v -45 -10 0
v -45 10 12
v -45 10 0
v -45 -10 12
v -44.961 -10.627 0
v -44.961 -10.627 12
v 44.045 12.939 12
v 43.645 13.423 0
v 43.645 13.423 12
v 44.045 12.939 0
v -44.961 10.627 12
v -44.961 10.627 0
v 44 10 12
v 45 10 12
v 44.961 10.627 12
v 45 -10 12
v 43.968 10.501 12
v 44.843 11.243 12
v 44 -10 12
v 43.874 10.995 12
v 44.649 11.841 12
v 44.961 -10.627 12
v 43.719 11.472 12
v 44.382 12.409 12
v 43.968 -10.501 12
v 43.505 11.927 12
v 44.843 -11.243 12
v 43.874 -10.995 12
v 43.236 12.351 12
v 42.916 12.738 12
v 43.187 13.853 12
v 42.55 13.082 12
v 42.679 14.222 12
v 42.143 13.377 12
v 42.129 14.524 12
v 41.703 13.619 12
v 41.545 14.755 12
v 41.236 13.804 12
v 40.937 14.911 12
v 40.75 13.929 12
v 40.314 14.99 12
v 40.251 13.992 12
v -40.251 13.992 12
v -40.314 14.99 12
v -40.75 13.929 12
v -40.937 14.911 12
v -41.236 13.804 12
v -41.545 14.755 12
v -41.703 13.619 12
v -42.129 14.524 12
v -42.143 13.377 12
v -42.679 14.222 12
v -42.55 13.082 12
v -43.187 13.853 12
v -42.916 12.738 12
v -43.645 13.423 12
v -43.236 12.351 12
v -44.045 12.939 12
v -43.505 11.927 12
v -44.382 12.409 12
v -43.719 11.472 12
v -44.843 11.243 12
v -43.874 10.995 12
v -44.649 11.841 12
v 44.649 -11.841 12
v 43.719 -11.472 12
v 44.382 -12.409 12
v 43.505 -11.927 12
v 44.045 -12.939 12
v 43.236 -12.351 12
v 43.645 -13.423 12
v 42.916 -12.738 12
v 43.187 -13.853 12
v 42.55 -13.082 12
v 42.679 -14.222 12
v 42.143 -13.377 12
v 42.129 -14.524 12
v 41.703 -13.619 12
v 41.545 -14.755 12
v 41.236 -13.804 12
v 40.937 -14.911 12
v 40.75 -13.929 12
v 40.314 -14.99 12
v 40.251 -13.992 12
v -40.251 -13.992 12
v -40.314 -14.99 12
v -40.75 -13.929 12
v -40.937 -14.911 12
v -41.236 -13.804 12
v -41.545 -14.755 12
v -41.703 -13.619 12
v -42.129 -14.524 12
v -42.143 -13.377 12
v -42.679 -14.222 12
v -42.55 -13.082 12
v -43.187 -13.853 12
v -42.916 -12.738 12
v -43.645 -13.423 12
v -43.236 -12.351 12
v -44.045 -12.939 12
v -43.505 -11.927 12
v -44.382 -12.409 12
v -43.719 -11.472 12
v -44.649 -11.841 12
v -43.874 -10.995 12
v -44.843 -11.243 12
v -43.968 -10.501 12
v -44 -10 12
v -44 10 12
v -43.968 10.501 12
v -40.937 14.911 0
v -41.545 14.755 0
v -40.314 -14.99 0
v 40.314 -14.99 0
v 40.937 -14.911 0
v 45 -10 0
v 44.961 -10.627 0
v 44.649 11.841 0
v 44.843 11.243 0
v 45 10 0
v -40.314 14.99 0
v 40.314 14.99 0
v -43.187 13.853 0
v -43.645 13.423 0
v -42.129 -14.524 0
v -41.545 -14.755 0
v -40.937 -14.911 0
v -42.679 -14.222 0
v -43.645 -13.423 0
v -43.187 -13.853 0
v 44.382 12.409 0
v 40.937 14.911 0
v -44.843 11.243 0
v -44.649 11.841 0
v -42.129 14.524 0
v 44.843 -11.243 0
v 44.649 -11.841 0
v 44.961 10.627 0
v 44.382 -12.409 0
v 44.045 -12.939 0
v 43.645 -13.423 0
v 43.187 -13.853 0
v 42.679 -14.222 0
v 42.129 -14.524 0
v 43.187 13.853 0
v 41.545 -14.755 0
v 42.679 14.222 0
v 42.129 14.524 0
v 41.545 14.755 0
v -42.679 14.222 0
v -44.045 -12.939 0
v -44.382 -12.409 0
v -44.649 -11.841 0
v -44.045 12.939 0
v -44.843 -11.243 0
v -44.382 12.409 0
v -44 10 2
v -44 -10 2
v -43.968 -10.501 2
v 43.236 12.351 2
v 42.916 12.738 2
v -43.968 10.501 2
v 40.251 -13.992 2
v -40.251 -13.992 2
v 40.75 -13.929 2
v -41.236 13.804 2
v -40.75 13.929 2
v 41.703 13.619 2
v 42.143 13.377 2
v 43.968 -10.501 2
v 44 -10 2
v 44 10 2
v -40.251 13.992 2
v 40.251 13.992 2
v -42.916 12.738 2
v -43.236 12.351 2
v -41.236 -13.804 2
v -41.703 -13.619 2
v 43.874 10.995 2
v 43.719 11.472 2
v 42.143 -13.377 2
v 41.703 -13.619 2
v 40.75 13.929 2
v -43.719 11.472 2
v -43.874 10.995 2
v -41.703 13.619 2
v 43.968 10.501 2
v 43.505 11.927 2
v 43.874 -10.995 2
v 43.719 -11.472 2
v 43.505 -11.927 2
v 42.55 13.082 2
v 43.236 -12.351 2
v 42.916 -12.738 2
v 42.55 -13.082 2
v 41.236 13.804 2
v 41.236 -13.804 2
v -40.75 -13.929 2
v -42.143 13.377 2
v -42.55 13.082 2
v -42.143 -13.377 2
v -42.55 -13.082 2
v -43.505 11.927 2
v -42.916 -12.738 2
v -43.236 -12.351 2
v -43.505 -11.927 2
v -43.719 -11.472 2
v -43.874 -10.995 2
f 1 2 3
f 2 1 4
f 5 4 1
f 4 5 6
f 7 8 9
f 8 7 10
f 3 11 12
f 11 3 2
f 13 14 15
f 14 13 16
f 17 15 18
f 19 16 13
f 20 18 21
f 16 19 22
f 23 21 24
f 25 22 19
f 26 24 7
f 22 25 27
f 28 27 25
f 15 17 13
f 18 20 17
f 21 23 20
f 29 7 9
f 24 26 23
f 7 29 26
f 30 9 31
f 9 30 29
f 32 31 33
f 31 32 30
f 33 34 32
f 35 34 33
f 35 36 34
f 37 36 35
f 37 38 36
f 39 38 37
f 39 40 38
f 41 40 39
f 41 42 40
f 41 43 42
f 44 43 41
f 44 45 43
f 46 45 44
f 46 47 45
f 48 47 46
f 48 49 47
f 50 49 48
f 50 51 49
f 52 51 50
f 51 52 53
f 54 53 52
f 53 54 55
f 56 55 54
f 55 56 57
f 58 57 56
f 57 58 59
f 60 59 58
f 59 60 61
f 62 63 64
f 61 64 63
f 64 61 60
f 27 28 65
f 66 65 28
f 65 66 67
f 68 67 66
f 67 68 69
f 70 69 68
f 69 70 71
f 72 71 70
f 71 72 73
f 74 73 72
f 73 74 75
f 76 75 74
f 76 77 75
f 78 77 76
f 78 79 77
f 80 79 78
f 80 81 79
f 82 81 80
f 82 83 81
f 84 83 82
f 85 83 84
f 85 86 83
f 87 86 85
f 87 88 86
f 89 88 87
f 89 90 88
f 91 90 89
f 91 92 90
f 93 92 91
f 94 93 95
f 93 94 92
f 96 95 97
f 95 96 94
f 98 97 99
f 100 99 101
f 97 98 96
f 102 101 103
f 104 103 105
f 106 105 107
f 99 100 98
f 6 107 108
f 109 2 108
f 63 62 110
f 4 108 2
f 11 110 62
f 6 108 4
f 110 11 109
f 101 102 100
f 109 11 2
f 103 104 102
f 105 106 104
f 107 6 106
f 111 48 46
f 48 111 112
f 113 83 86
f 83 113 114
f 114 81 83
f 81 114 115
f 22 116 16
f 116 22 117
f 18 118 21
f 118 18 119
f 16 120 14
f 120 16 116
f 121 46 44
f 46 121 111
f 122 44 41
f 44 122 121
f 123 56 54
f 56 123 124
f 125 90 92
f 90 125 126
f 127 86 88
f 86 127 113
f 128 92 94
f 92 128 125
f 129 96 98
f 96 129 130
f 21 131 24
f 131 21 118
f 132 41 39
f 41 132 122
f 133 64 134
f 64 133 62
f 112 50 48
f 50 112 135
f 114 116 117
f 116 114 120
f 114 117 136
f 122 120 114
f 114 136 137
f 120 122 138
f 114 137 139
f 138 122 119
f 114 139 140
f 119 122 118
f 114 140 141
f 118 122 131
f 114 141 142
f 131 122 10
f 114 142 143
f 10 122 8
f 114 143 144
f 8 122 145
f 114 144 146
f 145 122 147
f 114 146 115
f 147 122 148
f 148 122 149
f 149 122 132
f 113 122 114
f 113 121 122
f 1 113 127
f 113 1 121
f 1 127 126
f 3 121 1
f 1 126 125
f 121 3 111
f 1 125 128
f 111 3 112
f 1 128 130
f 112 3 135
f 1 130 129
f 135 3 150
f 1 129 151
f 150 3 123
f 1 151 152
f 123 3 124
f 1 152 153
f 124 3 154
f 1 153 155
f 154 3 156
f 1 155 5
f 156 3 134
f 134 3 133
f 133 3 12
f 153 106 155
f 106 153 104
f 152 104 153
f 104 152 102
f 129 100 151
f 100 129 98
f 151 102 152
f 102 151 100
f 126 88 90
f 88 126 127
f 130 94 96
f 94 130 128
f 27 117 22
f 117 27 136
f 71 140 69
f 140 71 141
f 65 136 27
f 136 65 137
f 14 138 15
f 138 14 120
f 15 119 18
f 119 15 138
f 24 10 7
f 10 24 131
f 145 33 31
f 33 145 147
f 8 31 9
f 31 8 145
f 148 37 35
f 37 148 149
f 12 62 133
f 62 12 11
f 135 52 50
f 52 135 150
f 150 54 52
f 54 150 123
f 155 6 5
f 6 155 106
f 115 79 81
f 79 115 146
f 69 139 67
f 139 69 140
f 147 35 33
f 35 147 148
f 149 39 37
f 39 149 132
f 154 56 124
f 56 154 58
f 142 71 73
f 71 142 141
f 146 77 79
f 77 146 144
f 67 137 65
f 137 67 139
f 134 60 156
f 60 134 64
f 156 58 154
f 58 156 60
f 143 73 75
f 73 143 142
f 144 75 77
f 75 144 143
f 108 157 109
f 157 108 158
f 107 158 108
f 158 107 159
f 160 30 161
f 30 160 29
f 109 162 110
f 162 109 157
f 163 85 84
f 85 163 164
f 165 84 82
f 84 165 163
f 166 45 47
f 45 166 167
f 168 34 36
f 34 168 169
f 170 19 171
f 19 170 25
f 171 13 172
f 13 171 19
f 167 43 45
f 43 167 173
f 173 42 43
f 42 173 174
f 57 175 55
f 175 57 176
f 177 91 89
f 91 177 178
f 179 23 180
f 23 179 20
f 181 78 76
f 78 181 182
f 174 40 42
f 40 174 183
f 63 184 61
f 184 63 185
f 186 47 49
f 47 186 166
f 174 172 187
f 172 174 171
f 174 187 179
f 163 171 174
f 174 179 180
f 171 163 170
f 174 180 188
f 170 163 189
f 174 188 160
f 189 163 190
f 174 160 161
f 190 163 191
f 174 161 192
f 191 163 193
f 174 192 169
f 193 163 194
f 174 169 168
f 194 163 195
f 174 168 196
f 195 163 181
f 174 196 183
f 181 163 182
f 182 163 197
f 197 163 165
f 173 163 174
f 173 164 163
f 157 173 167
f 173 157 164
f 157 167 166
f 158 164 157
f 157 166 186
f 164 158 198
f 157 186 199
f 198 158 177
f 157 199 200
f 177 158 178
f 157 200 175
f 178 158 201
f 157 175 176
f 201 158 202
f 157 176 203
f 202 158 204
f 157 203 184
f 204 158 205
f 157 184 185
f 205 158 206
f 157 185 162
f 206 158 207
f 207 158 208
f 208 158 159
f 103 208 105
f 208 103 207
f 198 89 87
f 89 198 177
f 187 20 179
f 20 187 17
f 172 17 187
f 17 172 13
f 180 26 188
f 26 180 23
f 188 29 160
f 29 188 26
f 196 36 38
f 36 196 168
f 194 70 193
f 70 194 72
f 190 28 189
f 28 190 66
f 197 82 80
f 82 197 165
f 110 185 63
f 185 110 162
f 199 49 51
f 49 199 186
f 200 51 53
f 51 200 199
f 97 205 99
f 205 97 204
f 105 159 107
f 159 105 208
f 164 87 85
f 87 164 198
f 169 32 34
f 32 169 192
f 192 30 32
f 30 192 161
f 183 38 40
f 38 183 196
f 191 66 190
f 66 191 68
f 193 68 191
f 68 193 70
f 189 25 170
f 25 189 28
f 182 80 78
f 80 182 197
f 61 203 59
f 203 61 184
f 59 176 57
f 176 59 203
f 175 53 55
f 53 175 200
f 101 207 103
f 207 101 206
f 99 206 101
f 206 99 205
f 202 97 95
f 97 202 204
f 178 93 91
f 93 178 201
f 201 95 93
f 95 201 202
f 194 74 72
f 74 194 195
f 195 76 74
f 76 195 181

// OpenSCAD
$fn = 50;


difference() {
	union() {
		hull() {
			translate(v = [-40.0000000000, 10.0000000000, 0]) {
				cylinder(h = 12, r = 5);
			}
			translate(v = [40.0000000000, 10.0000000000, 0]) {
				cylinder(h = 12, r = 5);
			}
			translate(v = [-40.0000000000, -10.0000000000, 0]) {
				cylinder(h = 12, r = 5);
			}
			translate(v = [40.0000000000, -10.0000000000, 0]) {
				cylinder(h = 12, r = 5);
			}
		}
	}
	union() {
		translate(v = [0, 0, 2]) {
			hull() {
				translate(v = [-40.0000000000, 10.0000000000, 0]) {
					cylinder(h = 10, r = 4);
				}
				translate(v = [40.0000000000, 10.0000000000, 0]) {
					cylinder(h = 10, r = 4);
				}
				translate(v = [-40.0000000000, -10.0000000000, 0]) {
					cylinder(h = 10, r = 4);
				}
				translate(v = [40.0000000000, -10.0000000000, 0]) {
					cylinder(h = 10, r = 4);
				}
			}
		}
	}
}
